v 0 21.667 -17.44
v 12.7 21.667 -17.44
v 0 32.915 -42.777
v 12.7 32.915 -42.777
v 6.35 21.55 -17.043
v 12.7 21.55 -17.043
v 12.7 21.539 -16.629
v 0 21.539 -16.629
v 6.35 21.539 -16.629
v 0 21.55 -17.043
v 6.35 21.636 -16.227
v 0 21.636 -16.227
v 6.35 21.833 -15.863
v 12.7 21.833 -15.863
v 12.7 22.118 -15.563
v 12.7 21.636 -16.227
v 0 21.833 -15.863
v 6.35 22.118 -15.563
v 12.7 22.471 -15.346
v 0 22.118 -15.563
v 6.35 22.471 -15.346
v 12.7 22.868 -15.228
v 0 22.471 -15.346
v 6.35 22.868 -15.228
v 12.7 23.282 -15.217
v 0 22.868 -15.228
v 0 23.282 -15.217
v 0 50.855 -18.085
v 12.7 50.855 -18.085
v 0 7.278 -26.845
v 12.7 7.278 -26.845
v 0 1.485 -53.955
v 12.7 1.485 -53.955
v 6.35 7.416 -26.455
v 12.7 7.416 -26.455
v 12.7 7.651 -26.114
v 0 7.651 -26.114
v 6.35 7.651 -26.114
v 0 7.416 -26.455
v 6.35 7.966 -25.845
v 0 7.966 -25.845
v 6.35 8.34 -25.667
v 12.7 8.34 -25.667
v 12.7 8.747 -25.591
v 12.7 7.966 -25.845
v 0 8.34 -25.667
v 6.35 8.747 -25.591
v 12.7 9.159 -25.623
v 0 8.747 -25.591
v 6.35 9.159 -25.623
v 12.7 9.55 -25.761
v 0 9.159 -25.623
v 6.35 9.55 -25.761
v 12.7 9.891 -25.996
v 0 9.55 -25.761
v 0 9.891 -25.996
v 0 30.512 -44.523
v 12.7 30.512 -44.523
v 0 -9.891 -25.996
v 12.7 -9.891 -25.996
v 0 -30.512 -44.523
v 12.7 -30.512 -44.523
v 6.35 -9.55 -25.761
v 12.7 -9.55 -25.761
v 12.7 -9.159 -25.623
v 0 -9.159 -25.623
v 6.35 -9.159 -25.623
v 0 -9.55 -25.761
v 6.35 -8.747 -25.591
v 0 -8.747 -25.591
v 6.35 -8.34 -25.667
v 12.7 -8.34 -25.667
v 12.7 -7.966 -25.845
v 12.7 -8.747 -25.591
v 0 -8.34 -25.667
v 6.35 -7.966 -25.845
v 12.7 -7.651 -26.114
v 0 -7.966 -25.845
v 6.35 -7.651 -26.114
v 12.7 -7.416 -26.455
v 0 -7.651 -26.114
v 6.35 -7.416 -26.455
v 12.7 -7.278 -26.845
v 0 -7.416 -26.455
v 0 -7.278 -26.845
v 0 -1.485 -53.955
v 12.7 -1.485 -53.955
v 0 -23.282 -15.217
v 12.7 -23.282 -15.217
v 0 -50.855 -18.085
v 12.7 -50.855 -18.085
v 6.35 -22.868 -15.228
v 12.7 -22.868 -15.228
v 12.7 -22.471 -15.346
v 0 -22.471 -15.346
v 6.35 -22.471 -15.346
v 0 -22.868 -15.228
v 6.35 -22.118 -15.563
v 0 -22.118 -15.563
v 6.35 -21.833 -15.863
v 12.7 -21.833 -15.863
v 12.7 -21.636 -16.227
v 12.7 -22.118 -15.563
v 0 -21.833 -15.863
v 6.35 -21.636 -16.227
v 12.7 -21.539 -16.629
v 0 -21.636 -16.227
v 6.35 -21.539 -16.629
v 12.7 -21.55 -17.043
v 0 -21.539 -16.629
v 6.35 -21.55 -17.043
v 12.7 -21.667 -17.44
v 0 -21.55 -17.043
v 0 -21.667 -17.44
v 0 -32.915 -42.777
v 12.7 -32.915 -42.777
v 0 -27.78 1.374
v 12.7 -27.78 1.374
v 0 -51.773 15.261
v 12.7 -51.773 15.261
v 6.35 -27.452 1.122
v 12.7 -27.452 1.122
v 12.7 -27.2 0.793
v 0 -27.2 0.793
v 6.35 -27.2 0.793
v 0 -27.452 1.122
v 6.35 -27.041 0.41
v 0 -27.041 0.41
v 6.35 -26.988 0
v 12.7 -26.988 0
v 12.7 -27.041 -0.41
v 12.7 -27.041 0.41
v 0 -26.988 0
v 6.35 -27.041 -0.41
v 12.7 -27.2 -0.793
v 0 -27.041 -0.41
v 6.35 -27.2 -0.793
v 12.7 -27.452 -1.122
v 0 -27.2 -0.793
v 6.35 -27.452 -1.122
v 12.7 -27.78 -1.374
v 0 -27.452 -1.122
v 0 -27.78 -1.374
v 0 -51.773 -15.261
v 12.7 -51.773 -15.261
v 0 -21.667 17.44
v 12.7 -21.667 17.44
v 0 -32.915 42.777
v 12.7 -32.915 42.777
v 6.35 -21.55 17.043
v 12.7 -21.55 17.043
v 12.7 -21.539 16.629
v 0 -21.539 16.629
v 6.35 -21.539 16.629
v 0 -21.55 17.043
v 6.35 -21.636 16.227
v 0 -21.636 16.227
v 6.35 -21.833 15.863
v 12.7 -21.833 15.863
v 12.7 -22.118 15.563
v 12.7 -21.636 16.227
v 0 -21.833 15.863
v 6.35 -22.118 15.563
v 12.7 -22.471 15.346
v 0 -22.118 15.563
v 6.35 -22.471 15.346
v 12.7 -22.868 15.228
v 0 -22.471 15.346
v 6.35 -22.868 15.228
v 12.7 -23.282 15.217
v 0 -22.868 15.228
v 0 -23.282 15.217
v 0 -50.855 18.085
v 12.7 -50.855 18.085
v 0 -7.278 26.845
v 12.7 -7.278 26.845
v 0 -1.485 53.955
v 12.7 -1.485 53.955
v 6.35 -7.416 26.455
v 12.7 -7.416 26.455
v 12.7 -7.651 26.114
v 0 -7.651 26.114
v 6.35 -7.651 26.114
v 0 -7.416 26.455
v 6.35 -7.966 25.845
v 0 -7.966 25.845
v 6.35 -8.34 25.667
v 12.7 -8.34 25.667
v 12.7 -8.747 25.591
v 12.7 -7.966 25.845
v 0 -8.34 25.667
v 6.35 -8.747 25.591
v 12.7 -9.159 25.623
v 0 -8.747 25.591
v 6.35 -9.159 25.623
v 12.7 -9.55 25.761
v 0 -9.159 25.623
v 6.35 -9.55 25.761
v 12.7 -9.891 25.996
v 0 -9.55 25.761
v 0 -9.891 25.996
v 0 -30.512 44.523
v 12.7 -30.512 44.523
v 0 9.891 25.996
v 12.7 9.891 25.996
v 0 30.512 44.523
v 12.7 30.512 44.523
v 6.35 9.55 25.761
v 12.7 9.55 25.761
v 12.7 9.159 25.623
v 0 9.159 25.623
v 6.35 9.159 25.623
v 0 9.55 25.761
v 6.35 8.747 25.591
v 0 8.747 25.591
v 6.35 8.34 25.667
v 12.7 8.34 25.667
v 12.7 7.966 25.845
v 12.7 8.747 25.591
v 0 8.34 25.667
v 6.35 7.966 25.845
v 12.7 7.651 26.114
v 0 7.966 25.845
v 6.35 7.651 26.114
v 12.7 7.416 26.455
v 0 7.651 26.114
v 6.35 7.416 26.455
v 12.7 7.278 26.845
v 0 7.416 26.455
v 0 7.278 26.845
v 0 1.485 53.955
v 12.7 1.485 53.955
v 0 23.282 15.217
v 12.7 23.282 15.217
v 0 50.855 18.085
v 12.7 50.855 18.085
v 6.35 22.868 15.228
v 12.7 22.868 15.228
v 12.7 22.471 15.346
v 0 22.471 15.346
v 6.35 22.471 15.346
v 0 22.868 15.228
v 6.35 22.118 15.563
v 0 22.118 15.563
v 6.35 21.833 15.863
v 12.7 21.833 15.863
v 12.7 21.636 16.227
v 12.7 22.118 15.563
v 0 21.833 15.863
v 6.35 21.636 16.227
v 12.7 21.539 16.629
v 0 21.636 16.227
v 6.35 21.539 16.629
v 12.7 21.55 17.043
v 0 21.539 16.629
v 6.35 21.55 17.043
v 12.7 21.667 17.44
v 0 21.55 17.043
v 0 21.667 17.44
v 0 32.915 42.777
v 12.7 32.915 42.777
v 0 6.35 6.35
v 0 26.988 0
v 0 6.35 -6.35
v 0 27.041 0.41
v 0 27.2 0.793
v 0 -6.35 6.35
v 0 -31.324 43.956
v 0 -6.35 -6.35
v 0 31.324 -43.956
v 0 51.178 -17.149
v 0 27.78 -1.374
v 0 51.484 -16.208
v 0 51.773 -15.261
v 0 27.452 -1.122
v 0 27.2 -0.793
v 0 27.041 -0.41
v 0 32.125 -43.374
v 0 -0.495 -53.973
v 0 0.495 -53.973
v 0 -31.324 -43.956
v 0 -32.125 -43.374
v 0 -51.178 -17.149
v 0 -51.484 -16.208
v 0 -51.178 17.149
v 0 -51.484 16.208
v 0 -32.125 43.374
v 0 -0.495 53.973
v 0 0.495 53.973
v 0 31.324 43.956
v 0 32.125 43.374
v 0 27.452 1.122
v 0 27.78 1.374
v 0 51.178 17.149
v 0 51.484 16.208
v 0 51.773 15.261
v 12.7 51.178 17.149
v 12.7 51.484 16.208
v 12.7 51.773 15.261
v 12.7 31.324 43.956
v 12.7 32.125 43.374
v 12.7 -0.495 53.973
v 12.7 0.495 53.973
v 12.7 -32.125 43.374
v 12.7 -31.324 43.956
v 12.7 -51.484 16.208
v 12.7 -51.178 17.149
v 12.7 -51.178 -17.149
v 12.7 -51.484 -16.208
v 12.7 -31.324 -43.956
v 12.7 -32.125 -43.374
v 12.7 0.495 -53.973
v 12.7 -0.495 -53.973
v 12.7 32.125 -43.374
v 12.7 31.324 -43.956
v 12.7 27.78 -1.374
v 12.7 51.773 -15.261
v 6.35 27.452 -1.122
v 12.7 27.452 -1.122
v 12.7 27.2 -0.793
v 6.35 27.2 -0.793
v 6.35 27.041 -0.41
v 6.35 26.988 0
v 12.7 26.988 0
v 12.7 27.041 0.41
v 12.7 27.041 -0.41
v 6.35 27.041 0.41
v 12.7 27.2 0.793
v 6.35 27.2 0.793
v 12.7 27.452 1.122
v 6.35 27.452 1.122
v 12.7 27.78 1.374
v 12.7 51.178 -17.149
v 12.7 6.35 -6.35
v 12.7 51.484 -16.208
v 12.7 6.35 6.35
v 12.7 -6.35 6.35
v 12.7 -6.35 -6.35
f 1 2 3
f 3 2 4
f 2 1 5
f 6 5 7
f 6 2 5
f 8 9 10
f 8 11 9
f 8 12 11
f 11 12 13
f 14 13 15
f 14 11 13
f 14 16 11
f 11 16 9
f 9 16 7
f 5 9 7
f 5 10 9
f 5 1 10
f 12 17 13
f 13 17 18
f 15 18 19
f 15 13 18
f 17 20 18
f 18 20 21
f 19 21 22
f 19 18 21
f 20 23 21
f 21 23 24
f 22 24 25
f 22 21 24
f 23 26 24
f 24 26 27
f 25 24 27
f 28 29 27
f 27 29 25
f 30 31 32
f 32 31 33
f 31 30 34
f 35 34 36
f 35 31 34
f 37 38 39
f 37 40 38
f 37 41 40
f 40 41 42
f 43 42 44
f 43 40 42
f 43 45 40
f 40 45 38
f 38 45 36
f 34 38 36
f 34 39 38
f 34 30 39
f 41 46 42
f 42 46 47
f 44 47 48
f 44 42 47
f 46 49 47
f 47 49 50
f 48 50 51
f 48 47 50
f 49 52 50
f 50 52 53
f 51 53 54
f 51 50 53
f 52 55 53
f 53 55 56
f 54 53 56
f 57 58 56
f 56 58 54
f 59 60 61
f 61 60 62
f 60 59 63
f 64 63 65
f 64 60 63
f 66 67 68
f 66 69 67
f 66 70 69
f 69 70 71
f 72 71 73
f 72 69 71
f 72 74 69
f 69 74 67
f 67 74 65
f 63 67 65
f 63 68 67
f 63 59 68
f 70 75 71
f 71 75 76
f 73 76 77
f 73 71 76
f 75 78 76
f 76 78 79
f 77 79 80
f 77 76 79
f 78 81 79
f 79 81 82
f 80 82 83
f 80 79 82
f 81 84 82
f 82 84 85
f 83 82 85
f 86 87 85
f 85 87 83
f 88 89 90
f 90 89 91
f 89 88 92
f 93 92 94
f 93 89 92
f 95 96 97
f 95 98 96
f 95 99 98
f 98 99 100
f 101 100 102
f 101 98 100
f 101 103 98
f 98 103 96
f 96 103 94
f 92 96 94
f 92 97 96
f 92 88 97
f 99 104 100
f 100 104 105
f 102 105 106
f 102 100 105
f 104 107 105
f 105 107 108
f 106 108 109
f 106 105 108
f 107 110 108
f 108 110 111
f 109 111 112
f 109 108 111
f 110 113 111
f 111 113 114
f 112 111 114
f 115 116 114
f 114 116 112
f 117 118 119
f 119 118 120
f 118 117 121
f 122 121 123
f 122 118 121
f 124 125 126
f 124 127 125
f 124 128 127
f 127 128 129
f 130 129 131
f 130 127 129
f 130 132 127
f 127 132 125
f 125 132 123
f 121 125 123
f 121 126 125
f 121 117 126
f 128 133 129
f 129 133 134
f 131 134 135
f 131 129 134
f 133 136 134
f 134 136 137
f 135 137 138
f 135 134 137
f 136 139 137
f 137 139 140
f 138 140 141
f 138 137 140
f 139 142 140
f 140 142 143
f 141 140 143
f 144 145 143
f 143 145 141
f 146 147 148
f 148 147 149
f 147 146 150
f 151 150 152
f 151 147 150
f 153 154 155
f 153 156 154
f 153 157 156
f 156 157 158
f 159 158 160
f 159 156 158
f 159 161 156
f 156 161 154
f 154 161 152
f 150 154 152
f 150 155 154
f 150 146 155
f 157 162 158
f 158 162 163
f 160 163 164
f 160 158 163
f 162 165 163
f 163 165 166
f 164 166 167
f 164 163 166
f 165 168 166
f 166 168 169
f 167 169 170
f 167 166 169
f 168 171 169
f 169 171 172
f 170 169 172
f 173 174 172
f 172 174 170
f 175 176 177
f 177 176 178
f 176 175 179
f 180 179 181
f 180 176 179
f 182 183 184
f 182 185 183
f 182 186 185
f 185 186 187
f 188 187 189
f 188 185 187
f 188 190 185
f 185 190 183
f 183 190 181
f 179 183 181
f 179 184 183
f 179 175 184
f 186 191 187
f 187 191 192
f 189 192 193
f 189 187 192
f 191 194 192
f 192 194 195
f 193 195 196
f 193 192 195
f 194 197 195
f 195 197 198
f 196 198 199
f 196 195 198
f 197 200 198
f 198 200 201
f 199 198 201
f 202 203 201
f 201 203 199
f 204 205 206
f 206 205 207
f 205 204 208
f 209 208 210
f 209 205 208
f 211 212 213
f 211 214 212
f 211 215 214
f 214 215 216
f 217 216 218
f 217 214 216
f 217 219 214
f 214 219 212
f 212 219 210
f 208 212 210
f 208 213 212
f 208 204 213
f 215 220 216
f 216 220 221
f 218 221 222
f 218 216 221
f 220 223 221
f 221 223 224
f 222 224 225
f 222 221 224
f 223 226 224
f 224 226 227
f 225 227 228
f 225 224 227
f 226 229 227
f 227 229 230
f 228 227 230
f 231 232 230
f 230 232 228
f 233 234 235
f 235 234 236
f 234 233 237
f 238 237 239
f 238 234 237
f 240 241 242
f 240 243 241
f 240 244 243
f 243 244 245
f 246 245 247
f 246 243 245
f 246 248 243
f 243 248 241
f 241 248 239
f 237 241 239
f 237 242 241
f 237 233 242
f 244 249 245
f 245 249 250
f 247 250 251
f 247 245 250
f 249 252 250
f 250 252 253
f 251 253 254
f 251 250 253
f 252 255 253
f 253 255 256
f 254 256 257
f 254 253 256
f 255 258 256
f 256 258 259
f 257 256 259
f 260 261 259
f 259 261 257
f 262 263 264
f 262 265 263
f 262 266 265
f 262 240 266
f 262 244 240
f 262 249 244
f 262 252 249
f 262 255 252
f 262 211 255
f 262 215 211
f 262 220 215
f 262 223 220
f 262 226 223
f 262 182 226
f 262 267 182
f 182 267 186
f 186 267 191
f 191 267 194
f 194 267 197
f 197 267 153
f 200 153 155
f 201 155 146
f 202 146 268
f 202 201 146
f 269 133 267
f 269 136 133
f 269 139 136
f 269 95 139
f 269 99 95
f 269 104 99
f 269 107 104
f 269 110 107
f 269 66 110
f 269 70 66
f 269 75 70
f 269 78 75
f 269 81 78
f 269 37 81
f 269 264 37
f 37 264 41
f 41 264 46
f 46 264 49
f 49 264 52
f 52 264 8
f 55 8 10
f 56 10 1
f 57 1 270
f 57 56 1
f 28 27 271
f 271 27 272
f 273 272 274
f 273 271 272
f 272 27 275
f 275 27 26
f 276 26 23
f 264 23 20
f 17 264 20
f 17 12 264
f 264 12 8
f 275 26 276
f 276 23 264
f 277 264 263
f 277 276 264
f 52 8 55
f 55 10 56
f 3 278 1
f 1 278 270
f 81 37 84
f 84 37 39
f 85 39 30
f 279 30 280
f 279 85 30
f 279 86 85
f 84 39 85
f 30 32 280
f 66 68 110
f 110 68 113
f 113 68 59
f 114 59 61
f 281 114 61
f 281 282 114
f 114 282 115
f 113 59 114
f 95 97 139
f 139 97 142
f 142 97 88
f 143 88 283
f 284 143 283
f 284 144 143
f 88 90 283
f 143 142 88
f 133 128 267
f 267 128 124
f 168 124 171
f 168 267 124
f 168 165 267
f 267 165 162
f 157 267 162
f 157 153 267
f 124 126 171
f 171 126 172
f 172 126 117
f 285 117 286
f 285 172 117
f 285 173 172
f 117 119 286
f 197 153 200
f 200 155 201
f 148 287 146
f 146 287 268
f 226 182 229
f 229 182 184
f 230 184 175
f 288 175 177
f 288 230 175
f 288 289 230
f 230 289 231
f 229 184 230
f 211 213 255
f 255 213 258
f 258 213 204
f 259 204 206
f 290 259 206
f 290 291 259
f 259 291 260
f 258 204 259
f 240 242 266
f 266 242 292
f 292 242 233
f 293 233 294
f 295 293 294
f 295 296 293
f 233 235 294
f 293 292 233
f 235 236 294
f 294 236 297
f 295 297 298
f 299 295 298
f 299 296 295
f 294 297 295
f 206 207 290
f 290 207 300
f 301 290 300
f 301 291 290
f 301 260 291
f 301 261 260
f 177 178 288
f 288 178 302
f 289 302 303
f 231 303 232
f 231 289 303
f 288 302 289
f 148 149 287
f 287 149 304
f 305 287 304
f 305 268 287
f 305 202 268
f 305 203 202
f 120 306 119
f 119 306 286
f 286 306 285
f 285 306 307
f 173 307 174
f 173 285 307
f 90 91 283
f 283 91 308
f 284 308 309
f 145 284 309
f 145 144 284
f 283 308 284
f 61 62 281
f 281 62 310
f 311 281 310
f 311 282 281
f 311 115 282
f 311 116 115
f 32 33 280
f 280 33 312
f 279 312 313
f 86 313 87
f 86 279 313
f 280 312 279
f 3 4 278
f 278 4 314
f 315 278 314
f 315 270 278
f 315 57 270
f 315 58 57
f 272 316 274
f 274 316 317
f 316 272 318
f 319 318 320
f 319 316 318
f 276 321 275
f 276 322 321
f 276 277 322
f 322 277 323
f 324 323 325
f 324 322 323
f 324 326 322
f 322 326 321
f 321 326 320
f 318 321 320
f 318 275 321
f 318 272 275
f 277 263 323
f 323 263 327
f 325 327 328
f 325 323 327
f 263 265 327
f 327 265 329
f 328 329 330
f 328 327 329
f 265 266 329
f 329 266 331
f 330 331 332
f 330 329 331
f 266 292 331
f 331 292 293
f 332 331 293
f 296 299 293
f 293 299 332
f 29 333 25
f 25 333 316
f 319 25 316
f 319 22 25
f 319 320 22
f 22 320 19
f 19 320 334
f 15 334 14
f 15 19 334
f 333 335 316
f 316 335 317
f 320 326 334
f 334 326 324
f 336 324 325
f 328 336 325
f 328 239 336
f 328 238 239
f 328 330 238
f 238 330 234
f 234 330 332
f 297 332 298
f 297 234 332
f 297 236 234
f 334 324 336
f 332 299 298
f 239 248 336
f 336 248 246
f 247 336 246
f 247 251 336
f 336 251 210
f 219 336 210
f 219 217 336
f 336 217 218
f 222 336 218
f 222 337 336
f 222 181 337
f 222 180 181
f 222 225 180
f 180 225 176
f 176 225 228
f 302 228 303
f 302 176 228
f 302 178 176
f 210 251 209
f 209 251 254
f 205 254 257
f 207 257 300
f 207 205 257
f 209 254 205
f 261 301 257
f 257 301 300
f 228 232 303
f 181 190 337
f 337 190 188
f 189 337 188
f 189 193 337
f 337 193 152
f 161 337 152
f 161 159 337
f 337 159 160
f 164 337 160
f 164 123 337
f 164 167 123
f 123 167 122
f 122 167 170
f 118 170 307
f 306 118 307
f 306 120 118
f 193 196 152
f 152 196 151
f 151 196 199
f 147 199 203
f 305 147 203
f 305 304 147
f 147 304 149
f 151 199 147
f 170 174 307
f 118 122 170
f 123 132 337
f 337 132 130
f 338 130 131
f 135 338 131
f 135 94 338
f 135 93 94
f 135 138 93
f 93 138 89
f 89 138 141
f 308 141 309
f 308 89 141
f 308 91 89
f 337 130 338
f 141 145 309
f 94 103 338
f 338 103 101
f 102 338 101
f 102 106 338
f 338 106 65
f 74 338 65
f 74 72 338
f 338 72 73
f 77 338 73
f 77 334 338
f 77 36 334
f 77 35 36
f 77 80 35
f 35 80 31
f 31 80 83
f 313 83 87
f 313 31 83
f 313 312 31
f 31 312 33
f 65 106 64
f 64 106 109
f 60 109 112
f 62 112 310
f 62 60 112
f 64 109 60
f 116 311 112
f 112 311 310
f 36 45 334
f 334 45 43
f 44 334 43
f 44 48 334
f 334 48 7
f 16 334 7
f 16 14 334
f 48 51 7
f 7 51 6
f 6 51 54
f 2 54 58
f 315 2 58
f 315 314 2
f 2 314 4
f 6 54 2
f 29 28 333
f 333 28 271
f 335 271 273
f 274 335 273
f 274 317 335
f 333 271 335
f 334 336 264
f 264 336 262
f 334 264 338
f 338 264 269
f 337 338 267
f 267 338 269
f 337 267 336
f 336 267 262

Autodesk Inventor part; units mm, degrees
ref_plane "YZ Plane" through (0, 0, 0) normal (1, 0, 0) x (0, 1, 0)
ref_plane "XZ Plane" through (0, 0, 0) normal (0, 1, 0) x (-1, 0, 0)
ref_plane "XY Plane" through (0, 0, 0) normal (0, 0, 1) x (1, 0, 0)
sketch "Sketch1" plane through (0, 0, 0) normal (1, 0, 0) x (0, 1, 0)
  circle A0 centre (0, 0) radius 53.975
  line L0 (-6.35, 6.35) -> (6.35, 6.35)
  line L1 (6.35, 6.35) -> (6.35, -6.35)
  line L2 (6.35, -6.35) -> (-6.35, -6.35)
  line L3 (-6.35, -6.35) -> (-6.35, 6.35)
  line L4 (-6.35, 6.35) -> (0, 0) construction
  line L5 (0, 0) -> (6.35, 6.35) construction
  line L6 (-6.35, -6.35) -> (0, 0) construction
  line L7 (0, 0) -> (6.35, -6.35) construction
  dimension "d0" = 107.95
  dimension "d1" = 12.7
extrude "Extrusion1" add sketch "Sketch1" along normal blind 12.7
sketch "Sketch2" plane through (12.7, 0, 0) normal (1, 0, 0) x (0, 0, -1)
  circle A0 centre (0, 0) radius 53.975 projected
  line L0 (0, 0) -> (0, 53.975) construction
  line L1 (0, 53.975) -> (-15.2606, 51.7727) construction
  line L2 (0, 53.975) -> (15.2606, 51.7727) construction
  line L3 (15.2606, 51.7727) -> (0, 0) construction
  line L4 (0, 0) -> (-15.2606, 51.7727) construction
  arc A1 (15.2606, 51.7727) -> (-15.2606, 51.7727) centre (0, 0) ccw construction
  line L5 (-15.2606, 51.7727) -> (-1.374, 27.7798)
  line L6 (1.374, 27.7798) -> (15.2606, 51.7727)
  arc A2 (-1.374, 27.7798) -> (1.374, 27.7798) centre (0, 28.575) ccw
  dimension "d4" = 32.847
  dimension "d11" = 1.5875
  dimension "d12" = 25.4
extrude "Extrusion3" cut sketch "Sketch2" against normal through all contours L6 A2 L5 A0 picked at (-7.2613, 44.4271)
pattern_circular "Circular Pattern2" count 10 over 360 about axis through (0, 0, 0) along (1, 0, 0) of "Extrusion3"
properties part number "IntakeRoller" material "Silicone"
